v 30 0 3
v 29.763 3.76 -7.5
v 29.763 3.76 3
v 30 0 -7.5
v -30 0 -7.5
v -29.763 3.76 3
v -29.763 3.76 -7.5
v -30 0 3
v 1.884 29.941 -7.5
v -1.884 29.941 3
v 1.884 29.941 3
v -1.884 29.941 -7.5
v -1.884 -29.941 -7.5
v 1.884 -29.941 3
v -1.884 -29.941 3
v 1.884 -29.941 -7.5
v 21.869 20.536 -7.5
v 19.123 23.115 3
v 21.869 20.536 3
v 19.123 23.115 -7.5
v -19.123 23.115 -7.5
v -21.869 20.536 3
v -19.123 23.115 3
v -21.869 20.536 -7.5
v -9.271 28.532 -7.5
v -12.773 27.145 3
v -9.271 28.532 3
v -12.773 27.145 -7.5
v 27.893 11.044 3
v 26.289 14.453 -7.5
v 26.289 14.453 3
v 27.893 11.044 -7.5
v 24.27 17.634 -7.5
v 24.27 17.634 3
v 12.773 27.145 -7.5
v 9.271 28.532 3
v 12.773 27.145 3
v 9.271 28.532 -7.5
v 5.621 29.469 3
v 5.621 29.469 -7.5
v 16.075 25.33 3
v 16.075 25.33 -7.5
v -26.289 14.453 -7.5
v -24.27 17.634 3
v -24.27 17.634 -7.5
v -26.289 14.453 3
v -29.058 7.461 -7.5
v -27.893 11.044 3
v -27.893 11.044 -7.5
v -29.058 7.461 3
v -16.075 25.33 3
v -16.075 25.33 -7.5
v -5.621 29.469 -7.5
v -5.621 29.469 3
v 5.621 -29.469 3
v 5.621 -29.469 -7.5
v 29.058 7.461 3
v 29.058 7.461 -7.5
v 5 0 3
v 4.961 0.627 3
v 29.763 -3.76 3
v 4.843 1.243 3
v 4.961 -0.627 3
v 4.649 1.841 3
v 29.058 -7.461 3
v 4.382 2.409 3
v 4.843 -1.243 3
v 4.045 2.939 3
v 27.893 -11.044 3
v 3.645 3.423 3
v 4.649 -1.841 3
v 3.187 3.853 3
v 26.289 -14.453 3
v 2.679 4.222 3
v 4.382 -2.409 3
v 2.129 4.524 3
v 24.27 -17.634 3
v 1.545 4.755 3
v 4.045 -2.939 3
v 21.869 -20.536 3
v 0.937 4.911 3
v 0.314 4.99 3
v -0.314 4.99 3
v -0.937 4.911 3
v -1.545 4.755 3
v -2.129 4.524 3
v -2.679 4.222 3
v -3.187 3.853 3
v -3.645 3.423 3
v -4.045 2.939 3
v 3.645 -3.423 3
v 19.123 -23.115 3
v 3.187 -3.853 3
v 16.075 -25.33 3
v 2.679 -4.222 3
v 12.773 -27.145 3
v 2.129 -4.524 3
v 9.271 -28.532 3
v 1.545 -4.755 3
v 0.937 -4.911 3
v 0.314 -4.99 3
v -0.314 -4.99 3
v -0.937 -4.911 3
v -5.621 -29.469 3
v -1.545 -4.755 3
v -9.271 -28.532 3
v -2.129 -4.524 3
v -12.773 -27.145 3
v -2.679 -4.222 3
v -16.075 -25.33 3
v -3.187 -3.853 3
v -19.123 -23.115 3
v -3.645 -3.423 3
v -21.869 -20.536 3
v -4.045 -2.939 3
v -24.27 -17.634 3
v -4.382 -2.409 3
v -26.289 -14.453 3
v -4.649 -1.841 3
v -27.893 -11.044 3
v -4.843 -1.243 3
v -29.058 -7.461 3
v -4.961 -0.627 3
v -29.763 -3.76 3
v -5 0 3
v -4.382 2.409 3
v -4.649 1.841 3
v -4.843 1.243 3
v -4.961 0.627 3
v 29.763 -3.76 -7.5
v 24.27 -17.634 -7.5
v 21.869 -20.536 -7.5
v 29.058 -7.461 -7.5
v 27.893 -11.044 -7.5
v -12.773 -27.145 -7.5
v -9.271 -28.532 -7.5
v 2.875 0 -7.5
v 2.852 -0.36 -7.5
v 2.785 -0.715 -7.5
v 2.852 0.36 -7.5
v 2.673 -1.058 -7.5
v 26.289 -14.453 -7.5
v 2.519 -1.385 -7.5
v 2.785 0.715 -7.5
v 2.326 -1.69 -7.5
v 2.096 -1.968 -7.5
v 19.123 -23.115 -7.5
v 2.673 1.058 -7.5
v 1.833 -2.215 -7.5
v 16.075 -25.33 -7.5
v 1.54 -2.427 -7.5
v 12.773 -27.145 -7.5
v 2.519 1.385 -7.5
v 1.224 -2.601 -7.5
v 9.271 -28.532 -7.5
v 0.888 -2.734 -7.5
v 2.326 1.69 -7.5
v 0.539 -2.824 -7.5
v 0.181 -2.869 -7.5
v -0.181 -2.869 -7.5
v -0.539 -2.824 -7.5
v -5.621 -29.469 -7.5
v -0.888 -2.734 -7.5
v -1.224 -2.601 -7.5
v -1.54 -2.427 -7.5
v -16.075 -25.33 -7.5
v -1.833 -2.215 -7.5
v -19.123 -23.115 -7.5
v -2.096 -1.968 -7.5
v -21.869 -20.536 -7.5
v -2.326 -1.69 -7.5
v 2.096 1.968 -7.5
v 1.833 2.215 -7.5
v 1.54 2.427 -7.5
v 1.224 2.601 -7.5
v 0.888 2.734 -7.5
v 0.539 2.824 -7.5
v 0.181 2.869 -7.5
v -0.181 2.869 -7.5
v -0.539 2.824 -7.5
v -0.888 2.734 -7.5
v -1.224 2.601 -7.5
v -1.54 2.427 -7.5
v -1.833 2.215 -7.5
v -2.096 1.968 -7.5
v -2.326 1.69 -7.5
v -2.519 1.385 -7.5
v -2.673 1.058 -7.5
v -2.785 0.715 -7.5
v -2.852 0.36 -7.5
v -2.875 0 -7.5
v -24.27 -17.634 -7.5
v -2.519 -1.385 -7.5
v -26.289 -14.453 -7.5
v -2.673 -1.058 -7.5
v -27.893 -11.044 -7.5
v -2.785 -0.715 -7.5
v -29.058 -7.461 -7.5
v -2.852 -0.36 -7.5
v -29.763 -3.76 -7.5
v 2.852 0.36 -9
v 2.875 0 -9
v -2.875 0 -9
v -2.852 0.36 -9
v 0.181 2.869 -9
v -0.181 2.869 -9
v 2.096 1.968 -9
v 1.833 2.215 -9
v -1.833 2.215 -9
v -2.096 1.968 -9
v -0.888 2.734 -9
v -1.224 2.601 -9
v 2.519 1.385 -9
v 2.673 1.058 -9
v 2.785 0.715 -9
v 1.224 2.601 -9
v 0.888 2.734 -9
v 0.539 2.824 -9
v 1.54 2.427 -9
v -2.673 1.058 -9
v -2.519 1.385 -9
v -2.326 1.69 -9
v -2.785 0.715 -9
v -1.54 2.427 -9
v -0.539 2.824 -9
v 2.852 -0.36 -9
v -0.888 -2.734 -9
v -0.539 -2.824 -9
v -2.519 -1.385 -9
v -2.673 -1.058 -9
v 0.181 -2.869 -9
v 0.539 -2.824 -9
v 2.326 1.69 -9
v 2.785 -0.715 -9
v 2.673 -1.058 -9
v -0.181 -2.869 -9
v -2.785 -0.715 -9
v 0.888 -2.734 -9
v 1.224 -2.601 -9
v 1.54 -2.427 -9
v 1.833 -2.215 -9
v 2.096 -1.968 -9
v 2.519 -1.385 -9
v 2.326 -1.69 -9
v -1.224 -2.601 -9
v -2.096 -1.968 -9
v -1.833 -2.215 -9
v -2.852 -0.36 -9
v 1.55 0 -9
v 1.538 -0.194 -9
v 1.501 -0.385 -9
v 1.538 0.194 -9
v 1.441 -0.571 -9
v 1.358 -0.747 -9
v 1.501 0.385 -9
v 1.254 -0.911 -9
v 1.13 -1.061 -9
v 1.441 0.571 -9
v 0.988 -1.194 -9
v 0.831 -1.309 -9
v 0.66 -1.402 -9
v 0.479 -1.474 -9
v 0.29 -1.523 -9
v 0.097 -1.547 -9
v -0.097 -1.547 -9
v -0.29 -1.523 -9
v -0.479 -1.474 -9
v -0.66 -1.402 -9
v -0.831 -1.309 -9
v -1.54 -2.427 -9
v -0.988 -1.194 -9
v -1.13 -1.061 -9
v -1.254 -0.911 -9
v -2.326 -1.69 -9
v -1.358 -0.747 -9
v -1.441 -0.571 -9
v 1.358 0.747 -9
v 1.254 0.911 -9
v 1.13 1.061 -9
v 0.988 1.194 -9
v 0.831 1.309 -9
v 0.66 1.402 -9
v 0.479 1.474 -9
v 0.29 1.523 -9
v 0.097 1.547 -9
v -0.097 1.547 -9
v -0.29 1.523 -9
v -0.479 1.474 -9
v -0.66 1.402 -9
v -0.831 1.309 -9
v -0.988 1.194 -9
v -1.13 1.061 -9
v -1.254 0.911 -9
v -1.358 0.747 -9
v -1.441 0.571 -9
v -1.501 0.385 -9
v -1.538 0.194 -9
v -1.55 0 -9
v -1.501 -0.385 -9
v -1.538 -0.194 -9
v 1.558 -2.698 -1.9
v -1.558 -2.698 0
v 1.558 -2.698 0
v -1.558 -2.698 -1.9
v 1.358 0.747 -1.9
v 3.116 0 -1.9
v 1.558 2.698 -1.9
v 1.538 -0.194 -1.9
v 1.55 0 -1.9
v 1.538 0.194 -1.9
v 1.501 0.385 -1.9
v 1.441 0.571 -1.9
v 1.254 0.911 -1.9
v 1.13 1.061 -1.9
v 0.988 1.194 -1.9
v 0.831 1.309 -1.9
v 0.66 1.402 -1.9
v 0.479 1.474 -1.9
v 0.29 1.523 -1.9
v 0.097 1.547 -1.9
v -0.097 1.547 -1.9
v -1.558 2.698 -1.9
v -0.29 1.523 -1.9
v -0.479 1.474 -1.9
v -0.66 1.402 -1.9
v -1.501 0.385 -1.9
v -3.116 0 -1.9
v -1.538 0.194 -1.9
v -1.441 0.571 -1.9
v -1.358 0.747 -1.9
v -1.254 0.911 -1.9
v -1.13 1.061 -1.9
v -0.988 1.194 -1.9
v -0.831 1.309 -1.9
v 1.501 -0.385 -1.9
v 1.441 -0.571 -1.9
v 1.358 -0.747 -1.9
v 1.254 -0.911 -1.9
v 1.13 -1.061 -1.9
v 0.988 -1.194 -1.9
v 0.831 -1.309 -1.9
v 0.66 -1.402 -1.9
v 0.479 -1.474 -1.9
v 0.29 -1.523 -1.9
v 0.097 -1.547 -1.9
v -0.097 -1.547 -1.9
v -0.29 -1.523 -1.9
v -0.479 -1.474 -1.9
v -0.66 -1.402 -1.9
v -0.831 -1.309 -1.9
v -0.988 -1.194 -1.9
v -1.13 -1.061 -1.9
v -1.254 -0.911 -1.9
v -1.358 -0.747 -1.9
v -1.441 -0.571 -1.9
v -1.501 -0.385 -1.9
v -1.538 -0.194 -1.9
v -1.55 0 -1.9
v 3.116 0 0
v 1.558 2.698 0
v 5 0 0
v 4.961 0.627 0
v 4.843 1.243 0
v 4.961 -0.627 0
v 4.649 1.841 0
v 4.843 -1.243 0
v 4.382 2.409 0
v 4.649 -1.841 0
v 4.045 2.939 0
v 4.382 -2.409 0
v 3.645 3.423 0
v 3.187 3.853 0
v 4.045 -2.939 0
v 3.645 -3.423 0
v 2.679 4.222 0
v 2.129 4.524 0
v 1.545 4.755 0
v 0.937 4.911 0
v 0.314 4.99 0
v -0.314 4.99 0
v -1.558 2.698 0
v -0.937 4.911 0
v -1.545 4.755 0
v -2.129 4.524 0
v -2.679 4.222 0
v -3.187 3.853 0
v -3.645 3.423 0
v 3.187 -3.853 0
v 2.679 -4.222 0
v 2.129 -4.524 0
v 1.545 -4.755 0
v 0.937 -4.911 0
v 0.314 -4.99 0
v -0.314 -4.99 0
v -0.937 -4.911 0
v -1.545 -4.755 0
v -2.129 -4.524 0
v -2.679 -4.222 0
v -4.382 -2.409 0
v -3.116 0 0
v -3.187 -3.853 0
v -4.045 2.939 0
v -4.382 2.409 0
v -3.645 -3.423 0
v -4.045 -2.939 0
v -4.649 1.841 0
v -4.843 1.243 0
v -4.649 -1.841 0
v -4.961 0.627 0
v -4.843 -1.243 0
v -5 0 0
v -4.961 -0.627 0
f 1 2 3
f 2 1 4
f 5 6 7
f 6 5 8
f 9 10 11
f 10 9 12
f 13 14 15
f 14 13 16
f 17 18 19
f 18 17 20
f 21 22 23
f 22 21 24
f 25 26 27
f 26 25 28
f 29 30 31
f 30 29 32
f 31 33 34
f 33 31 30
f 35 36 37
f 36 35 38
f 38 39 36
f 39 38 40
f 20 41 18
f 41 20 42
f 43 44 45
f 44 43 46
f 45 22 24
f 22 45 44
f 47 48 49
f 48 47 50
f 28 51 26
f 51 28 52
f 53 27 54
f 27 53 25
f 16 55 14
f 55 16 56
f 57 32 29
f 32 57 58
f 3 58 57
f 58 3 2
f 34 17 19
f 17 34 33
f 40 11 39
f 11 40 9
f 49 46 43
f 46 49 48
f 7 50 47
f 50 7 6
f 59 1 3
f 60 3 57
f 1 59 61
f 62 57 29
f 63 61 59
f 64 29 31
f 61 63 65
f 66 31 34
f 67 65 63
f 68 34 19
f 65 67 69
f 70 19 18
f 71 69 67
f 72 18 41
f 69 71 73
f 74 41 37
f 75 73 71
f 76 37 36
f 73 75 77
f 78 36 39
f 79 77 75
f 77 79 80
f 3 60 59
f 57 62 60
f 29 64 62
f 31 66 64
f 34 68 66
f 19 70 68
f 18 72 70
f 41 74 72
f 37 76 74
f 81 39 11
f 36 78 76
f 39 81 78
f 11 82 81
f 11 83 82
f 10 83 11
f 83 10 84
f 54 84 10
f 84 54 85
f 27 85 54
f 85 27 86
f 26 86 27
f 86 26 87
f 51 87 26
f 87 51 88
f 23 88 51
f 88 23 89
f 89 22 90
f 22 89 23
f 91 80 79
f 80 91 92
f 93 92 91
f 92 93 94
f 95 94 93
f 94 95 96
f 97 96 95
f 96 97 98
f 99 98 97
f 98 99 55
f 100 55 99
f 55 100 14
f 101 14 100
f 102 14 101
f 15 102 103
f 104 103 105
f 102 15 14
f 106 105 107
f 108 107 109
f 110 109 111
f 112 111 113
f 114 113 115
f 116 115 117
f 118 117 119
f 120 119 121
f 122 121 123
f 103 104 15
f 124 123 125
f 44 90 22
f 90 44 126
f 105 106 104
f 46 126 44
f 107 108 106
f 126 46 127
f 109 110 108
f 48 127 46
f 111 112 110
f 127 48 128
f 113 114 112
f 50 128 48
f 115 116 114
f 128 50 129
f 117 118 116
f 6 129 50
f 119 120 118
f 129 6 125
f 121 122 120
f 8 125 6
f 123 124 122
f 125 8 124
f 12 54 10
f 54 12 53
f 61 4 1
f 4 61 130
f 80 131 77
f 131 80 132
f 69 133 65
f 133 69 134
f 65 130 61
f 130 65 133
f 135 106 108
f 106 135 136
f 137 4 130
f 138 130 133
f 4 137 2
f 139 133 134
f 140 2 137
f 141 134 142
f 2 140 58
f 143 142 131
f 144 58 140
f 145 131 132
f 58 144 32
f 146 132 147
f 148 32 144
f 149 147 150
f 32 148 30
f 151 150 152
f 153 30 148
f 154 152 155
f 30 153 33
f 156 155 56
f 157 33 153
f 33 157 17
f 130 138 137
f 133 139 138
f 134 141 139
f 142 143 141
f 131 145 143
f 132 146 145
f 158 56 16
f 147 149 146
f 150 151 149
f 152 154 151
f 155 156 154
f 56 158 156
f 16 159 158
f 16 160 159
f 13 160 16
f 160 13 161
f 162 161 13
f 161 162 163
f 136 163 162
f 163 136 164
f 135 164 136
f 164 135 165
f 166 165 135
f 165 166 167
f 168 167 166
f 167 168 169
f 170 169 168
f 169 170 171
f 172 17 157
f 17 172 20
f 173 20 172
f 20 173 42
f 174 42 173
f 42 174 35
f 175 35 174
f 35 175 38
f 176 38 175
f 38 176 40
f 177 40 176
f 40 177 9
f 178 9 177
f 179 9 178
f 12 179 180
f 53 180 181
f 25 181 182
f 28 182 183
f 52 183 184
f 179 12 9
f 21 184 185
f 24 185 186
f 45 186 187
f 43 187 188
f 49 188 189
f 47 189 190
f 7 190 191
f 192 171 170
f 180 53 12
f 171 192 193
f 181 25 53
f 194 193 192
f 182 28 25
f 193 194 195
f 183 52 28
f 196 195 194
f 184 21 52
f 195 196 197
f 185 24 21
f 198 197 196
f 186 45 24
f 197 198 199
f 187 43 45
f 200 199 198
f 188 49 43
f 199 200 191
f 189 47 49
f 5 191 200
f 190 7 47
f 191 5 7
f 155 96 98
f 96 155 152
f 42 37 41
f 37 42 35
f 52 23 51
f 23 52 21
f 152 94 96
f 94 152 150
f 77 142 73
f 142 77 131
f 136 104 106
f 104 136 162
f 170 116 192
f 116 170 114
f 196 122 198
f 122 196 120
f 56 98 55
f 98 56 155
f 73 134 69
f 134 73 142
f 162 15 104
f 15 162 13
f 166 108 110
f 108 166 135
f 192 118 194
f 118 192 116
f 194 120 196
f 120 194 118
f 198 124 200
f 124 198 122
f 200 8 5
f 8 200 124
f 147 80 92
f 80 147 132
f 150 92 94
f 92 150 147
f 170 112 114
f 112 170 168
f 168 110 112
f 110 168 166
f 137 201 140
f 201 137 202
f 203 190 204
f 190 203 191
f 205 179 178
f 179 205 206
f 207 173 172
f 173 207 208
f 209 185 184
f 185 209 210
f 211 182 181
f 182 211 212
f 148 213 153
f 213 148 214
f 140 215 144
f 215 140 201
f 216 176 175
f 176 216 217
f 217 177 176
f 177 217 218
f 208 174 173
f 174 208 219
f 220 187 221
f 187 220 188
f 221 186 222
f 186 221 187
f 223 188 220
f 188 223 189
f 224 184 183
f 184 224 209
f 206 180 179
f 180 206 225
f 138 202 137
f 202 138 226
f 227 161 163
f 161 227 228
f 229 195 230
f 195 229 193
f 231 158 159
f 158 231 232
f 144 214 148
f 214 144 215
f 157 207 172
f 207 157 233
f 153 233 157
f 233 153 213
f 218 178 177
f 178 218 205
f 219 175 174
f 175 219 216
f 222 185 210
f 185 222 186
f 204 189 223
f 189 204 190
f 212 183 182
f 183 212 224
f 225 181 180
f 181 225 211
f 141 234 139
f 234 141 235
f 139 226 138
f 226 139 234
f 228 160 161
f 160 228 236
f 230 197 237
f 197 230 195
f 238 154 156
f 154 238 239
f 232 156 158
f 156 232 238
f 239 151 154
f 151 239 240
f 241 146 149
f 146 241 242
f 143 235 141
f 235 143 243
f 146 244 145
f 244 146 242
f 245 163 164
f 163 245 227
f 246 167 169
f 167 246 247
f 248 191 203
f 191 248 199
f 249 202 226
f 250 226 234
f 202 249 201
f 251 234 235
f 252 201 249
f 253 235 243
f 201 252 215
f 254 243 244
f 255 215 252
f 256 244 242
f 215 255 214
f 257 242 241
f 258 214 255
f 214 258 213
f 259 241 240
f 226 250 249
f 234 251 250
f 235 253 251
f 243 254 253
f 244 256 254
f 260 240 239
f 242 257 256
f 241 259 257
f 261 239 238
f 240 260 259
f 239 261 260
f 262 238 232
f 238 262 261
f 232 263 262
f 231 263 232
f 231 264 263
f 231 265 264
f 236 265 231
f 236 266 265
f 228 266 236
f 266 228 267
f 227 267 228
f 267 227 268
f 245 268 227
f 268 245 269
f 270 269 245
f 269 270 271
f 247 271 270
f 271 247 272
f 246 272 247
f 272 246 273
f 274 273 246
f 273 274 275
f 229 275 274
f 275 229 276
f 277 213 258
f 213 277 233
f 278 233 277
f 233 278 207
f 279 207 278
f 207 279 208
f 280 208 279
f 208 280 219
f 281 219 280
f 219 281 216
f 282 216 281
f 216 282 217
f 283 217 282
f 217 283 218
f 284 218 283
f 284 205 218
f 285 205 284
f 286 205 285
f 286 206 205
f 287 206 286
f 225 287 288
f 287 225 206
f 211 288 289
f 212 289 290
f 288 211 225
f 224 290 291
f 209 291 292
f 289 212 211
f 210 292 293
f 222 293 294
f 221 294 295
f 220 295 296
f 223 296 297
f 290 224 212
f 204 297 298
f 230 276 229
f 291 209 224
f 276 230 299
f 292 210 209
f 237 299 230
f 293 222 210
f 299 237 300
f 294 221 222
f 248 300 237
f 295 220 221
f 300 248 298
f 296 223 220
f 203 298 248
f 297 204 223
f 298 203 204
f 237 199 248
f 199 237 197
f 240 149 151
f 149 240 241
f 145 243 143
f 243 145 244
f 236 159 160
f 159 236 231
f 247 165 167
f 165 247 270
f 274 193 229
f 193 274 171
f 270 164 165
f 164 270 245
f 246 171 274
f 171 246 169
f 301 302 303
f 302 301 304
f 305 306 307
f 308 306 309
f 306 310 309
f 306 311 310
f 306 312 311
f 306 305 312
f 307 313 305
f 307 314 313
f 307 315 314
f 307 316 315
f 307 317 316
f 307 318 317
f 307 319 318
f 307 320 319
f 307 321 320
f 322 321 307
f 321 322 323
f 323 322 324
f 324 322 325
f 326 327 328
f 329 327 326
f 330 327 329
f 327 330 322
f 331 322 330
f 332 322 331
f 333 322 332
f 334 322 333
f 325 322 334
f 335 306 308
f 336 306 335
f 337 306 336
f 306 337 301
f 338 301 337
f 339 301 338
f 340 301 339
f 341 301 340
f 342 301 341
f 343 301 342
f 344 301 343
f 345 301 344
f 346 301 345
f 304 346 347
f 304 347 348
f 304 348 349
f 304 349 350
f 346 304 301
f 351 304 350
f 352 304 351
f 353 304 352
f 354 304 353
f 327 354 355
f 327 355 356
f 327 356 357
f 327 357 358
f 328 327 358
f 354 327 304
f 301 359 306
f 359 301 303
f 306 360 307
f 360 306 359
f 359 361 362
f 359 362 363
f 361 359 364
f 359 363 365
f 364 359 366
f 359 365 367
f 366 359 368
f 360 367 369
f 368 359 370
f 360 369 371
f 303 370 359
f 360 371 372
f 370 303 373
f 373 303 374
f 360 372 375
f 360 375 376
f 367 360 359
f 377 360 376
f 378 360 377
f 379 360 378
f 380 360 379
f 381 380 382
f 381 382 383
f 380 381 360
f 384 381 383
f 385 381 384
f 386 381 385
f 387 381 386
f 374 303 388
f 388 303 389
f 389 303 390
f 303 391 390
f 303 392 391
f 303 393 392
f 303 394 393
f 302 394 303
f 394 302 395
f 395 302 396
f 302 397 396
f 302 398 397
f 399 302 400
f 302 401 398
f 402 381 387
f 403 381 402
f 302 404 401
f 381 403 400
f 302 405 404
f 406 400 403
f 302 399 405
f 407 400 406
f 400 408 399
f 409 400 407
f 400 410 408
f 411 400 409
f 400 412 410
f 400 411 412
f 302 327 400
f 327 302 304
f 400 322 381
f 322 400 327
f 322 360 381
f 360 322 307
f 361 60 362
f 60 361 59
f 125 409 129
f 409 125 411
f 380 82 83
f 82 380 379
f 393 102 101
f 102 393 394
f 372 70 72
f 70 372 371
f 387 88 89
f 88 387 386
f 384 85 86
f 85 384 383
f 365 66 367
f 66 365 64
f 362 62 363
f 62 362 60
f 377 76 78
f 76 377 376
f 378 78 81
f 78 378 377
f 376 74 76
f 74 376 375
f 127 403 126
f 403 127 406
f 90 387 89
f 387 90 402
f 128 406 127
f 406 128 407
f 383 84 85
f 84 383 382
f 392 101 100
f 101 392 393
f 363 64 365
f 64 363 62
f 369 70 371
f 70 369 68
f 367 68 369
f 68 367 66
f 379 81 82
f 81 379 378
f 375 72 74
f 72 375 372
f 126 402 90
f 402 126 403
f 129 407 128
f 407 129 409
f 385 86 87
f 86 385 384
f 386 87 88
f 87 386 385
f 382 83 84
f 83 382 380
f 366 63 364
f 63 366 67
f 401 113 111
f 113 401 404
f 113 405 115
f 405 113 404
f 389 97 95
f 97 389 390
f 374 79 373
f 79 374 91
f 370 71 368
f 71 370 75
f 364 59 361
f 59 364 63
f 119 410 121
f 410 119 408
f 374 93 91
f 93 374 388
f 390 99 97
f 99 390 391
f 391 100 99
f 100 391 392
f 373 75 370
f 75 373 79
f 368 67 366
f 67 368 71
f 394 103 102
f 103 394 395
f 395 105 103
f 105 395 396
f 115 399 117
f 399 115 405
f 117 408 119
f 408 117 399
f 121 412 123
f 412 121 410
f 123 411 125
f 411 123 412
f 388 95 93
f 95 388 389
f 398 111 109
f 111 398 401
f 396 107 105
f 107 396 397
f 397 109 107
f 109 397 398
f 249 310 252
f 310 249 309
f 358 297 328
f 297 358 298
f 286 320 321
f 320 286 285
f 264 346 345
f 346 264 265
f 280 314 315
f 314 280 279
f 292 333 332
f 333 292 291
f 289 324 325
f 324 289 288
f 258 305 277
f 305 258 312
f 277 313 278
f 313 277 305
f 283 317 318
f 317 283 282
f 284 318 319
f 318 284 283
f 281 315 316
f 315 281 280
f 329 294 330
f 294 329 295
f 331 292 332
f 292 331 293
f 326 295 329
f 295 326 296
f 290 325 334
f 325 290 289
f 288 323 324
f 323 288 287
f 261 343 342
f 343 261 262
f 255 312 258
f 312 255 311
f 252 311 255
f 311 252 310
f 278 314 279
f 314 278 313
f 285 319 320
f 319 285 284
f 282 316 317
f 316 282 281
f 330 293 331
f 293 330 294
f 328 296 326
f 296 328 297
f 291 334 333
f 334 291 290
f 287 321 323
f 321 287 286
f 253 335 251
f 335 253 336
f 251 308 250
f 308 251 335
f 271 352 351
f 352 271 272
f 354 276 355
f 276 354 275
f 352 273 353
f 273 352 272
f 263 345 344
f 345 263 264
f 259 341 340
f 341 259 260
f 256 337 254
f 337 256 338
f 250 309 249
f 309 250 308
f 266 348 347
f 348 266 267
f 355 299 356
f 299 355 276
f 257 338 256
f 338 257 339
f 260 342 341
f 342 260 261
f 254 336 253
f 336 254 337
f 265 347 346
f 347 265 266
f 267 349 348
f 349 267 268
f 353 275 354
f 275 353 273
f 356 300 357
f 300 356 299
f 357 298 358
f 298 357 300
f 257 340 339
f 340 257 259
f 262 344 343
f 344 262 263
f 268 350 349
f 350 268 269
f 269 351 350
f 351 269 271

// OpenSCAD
$fn = 50;

difference() {
	union() {
		translate(v = [0, 0, -7.5]) {
			cylinder(h = 10.5, r = 30.0);
		}
		#translate(v = [0, 0, -9.0]) {
			cylinder(h = 9, r = 2.875);
		}
	}
	union() {
		translate(v = [0, 0, 0]) {
			rotate(a = [0, 0, 0]) {
				difference() {
					union() {
						translate(v = [0, 0, -1.9]) {
							linear_extrude(height = 1.9) {
								polygon(points = [[3.1158, 0.0], [1.5579000000000005, 2.698361953111554], [-1.5578999999999994, 2.6983619531115544], [-3.1158, 3.815754496783323e-16], [-1.5579000000000014, -2.6983619531115535], [1.557899999999998, -2.6983619531115552]]);
							}
						}
					}
					union();
				}
			}
		}
		#cylinder(h = 3, r = 5.0);
		#translate(v = [0, 0, -100.0]) {
			cylinder(h = 200, r = 1.55);
		}
	}
}
